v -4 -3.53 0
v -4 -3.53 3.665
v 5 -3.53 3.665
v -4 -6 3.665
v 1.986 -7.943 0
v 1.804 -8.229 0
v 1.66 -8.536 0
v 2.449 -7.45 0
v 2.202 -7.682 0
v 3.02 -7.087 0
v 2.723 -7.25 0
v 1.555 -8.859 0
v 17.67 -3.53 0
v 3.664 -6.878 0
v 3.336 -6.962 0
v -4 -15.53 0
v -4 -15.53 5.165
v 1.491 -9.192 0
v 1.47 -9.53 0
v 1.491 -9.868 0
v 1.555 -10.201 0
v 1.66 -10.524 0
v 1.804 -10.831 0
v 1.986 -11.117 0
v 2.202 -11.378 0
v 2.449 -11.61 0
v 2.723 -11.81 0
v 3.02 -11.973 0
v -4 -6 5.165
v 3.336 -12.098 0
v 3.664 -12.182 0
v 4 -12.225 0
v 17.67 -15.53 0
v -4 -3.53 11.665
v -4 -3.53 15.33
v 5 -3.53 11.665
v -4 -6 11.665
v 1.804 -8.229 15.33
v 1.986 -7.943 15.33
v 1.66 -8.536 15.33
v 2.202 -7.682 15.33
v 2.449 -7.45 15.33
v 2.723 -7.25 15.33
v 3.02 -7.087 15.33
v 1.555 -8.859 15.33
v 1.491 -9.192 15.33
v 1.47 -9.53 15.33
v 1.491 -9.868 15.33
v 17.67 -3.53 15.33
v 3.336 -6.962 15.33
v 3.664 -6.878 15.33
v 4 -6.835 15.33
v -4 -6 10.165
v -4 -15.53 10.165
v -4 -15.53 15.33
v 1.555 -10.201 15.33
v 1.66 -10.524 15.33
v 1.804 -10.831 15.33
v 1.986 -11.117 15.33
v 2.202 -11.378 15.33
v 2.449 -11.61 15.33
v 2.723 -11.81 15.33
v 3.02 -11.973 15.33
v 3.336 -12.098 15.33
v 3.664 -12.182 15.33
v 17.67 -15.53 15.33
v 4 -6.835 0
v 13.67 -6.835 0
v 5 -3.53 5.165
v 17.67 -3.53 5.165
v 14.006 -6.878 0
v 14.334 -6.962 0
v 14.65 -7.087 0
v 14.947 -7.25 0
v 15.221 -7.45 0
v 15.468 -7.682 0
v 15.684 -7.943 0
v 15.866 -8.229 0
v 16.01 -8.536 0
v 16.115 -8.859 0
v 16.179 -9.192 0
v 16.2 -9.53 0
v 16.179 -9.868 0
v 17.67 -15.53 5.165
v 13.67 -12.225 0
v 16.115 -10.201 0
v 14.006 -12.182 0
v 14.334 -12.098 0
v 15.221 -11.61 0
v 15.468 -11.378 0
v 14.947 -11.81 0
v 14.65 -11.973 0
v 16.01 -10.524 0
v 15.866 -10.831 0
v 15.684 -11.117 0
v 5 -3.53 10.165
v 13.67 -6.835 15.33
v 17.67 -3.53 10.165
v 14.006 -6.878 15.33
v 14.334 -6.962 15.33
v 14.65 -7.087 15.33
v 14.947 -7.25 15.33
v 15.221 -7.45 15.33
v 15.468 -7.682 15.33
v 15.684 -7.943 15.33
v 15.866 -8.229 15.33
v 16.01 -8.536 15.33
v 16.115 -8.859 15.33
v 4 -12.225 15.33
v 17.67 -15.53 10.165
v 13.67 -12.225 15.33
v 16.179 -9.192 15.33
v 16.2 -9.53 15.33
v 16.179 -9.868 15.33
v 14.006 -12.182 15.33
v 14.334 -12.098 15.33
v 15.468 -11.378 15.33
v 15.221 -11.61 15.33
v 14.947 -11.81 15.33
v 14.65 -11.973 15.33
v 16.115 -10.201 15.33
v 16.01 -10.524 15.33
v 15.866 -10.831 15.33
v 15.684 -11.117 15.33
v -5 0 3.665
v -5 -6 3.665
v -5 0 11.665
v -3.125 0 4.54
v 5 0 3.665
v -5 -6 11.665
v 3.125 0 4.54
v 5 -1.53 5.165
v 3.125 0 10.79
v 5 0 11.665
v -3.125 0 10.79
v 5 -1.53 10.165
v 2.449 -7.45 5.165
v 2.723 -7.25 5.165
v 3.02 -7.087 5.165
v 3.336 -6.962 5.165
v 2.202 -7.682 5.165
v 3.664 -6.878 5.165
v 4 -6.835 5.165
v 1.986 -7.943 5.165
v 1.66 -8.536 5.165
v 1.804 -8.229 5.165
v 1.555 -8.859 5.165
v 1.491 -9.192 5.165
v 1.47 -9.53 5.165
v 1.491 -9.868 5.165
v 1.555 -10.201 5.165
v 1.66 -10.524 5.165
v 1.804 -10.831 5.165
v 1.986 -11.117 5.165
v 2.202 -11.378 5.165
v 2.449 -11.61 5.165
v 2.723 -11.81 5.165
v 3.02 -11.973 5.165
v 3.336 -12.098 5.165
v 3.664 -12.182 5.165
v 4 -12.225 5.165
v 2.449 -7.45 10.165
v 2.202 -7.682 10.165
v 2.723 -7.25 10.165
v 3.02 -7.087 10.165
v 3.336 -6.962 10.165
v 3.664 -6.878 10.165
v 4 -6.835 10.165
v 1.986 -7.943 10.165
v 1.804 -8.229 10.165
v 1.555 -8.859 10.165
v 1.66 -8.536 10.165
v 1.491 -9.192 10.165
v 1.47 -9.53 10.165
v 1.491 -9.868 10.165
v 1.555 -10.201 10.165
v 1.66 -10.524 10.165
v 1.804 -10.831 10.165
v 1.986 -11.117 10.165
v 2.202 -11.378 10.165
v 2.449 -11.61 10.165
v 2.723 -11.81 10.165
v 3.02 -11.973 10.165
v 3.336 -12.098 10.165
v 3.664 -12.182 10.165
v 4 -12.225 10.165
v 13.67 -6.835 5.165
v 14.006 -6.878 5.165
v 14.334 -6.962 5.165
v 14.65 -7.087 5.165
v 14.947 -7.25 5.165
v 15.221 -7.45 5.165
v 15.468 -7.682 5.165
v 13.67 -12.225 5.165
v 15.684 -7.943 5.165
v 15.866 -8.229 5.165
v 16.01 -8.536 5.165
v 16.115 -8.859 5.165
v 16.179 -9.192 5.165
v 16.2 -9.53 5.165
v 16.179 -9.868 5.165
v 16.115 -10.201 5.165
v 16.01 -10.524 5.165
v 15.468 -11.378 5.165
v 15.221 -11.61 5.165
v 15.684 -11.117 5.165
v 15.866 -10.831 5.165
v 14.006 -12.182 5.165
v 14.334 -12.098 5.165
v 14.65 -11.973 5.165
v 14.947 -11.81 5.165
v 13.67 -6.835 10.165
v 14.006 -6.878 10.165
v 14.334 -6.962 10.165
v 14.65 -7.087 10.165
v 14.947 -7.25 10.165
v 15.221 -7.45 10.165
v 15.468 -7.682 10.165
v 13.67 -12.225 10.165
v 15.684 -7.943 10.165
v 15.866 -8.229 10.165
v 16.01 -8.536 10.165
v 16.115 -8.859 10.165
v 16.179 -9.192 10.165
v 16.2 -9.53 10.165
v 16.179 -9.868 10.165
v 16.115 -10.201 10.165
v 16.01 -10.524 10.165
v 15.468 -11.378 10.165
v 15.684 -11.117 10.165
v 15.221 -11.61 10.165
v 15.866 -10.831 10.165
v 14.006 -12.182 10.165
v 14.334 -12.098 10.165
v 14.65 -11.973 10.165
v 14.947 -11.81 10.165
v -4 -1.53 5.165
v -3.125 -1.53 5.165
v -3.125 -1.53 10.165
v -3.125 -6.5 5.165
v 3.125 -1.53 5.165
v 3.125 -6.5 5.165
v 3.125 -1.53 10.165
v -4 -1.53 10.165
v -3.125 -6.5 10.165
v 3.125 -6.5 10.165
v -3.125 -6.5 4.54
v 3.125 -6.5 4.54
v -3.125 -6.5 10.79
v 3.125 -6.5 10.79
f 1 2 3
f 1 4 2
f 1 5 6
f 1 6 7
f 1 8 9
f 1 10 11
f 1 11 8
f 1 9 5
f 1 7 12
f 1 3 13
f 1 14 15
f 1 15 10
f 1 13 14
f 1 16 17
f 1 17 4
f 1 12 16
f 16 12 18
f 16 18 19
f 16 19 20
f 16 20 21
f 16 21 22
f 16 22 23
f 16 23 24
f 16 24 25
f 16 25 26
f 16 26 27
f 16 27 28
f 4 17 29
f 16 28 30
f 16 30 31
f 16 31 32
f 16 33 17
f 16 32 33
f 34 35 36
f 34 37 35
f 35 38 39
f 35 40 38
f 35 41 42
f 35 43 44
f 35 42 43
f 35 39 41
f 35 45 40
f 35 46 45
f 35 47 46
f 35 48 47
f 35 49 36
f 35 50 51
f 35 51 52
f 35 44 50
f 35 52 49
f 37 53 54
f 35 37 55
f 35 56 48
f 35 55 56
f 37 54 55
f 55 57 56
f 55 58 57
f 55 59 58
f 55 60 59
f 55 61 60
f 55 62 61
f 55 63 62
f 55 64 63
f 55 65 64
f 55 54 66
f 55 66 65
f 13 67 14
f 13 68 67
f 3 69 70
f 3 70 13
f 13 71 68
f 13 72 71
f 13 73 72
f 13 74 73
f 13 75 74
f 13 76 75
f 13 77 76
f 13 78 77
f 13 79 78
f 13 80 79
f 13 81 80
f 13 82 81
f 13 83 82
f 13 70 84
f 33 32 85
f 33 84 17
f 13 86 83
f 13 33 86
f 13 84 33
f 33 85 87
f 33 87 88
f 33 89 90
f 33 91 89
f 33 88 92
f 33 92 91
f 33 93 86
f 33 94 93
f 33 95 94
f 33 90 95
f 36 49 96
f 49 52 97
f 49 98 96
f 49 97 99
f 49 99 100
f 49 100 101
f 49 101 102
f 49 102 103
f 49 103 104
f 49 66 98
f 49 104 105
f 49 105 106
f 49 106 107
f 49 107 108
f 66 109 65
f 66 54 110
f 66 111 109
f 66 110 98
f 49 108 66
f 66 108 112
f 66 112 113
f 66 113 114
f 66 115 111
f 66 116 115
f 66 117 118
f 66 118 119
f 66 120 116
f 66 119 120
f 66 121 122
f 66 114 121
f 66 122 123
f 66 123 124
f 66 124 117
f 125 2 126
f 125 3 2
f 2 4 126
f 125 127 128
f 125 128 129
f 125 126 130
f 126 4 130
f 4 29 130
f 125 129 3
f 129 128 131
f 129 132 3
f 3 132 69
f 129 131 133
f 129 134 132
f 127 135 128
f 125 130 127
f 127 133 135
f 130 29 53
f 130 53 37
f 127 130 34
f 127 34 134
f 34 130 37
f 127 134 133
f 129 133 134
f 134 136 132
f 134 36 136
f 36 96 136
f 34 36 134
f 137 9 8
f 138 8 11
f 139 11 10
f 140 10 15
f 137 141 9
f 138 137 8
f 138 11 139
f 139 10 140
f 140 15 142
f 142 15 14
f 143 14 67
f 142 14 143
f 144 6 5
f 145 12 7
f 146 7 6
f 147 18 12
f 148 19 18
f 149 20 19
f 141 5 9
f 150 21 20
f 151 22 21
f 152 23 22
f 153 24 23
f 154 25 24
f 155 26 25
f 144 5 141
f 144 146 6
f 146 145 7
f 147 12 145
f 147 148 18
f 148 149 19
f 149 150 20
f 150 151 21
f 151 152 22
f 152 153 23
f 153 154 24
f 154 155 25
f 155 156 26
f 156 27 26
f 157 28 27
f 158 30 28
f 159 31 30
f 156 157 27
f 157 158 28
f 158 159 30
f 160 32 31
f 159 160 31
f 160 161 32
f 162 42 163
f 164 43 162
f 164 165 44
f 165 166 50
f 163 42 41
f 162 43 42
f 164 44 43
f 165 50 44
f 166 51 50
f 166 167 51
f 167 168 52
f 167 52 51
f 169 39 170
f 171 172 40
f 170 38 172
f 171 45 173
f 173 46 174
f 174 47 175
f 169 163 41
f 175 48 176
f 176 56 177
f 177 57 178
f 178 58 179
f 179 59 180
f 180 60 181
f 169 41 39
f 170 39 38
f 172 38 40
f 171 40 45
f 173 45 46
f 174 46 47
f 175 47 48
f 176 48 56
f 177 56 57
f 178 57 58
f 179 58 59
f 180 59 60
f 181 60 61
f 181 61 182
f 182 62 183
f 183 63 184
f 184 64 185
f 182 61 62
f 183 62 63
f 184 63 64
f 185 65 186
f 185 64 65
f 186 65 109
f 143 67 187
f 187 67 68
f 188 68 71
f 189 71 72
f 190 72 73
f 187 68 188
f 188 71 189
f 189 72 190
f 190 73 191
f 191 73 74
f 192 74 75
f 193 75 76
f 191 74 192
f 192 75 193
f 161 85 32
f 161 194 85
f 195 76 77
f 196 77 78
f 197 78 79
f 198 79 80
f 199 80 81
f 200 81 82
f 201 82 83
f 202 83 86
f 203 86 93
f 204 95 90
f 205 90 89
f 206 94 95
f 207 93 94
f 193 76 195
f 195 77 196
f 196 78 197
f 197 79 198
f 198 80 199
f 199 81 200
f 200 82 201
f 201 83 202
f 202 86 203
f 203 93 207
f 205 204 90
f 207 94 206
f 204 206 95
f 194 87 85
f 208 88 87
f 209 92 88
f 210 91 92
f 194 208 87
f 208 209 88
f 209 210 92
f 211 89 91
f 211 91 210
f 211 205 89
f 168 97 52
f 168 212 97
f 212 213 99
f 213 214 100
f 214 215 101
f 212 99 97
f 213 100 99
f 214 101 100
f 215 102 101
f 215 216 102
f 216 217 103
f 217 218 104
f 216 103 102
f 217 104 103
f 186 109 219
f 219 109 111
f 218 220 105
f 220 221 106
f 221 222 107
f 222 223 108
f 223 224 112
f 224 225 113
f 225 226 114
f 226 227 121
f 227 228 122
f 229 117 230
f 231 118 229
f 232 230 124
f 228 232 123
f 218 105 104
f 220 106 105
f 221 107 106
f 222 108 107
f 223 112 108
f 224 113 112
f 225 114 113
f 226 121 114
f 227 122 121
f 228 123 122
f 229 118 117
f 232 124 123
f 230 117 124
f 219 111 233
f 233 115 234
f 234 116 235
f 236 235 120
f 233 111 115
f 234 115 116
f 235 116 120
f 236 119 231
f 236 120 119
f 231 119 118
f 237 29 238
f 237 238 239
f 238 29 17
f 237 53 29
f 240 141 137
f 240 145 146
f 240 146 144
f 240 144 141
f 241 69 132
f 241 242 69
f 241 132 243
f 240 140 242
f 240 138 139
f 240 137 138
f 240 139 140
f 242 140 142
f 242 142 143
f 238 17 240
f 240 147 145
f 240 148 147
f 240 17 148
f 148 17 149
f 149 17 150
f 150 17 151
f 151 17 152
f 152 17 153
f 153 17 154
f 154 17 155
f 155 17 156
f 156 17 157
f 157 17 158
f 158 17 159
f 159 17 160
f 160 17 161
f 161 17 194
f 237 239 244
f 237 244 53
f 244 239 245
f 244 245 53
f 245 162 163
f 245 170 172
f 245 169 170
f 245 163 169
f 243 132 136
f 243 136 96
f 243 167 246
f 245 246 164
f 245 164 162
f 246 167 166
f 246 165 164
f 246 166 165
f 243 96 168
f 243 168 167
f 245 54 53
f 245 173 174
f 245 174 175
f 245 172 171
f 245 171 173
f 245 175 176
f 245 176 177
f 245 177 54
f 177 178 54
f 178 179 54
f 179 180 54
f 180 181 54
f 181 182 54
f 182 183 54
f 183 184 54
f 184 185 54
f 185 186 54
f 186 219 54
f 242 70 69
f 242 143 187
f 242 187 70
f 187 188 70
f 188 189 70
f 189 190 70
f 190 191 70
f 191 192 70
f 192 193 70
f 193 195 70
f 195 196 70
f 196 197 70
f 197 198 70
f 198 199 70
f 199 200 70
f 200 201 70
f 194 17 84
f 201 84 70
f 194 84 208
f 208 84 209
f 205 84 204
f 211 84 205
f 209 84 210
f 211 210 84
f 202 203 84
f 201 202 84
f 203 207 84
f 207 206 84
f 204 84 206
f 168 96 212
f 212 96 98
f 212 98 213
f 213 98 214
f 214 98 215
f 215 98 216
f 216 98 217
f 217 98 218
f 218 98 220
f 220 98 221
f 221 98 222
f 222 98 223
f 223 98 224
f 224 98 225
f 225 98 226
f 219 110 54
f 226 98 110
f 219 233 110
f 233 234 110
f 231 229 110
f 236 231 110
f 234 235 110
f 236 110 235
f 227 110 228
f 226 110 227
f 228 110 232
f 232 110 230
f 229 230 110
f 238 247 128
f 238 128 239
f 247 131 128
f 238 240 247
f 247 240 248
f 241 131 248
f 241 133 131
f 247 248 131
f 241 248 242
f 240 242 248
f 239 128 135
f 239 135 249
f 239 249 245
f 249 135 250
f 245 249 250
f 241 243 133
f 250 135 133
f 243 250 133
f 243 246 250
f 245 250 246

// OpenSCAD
// ====================================================================
// [PRINT 07-B] Tower Station B - Upper Cable Tensioner Bracket
// Lies 100% flat on bed at Z = 0.
// Includes square receiving pocket for Part 07-A snap post.
// ZERO SUPPORTS NEEDED!
// ====================================================================

$fn = 50;

body_w         = 15.33; // Width of tensioner body
body_l         = 21.67; // Length of tensioner body
body_h         = 12.0;  // Overall height
slot_travel    = 9.33;  // Tension travel distance
axle_dia       = 5.4;   // M5 axle bolt clearance
axle_z         = 9.53;  // Matched to Tower A sheave axle height!

module tower_head_b_bracket() {
    difference() {
        union() {
            // Main horizontal tensioner body
            translate([body_l / 2 - 4, 0, axle_z])
                cube([body_l, body_w, body_h], center = true);

            // Lower snap-fit receiving hub (rests flat at Z = 0)
            translate([0, 0, 3.0])
                cube([10.0, 8.0, 6.0], center = true);
        }

        // Inner clevis channel for sheave wheel (fits 4mm sheave rim)
        translate([body_l / 2 - 2, 0, axle_z])
            cube([body_l + 4, 5.0, body_h + 4], center = true);

        // Horizontal tensioning slots on both sides (for axle bolt travel)
        translate([body_l / 2 - 2, 0, axle_z])
            hull() {
                translate([-slot_travel / 2, 0, 0])
                    rotate([90, 0, 0])
                        cylinder(d = axle_dia, h = body_w + 4, center = true);
                translate([slot_travel / 2, 0, 0])
                    rotate([90, 0, 0])
                        cylinder(d = axle_dia, h = body_w + 4, center = true);
            }

        // Longitudinal tensioner screw hole
        translate([body_l / 2 + 5, 0, axle_z])
            rotate([0, 90, 0])
                cylinder(d = 3.4, h = 20, center = true);

        // Receiving socket pocket for Part A post (includes +0.2mm print gap clearance)
        translate([0, 0, 3.0])
            cube([6.25, 6.25, 7.0], center = true);

        // Side snap-fit detent channels
        for (x_sign = [-1, 1]) {
            translate([x_sign * 3.1, 0, 4.5])
                sphere(r = 0.6, $fn = 16);
        }
    }
}

// Laid flat on its side at Z = 0 for 100% support-free printing
translate([0, 0, body_w / 2])
    rotate([90, 0, 0])
        tower_head_b_bracket();
